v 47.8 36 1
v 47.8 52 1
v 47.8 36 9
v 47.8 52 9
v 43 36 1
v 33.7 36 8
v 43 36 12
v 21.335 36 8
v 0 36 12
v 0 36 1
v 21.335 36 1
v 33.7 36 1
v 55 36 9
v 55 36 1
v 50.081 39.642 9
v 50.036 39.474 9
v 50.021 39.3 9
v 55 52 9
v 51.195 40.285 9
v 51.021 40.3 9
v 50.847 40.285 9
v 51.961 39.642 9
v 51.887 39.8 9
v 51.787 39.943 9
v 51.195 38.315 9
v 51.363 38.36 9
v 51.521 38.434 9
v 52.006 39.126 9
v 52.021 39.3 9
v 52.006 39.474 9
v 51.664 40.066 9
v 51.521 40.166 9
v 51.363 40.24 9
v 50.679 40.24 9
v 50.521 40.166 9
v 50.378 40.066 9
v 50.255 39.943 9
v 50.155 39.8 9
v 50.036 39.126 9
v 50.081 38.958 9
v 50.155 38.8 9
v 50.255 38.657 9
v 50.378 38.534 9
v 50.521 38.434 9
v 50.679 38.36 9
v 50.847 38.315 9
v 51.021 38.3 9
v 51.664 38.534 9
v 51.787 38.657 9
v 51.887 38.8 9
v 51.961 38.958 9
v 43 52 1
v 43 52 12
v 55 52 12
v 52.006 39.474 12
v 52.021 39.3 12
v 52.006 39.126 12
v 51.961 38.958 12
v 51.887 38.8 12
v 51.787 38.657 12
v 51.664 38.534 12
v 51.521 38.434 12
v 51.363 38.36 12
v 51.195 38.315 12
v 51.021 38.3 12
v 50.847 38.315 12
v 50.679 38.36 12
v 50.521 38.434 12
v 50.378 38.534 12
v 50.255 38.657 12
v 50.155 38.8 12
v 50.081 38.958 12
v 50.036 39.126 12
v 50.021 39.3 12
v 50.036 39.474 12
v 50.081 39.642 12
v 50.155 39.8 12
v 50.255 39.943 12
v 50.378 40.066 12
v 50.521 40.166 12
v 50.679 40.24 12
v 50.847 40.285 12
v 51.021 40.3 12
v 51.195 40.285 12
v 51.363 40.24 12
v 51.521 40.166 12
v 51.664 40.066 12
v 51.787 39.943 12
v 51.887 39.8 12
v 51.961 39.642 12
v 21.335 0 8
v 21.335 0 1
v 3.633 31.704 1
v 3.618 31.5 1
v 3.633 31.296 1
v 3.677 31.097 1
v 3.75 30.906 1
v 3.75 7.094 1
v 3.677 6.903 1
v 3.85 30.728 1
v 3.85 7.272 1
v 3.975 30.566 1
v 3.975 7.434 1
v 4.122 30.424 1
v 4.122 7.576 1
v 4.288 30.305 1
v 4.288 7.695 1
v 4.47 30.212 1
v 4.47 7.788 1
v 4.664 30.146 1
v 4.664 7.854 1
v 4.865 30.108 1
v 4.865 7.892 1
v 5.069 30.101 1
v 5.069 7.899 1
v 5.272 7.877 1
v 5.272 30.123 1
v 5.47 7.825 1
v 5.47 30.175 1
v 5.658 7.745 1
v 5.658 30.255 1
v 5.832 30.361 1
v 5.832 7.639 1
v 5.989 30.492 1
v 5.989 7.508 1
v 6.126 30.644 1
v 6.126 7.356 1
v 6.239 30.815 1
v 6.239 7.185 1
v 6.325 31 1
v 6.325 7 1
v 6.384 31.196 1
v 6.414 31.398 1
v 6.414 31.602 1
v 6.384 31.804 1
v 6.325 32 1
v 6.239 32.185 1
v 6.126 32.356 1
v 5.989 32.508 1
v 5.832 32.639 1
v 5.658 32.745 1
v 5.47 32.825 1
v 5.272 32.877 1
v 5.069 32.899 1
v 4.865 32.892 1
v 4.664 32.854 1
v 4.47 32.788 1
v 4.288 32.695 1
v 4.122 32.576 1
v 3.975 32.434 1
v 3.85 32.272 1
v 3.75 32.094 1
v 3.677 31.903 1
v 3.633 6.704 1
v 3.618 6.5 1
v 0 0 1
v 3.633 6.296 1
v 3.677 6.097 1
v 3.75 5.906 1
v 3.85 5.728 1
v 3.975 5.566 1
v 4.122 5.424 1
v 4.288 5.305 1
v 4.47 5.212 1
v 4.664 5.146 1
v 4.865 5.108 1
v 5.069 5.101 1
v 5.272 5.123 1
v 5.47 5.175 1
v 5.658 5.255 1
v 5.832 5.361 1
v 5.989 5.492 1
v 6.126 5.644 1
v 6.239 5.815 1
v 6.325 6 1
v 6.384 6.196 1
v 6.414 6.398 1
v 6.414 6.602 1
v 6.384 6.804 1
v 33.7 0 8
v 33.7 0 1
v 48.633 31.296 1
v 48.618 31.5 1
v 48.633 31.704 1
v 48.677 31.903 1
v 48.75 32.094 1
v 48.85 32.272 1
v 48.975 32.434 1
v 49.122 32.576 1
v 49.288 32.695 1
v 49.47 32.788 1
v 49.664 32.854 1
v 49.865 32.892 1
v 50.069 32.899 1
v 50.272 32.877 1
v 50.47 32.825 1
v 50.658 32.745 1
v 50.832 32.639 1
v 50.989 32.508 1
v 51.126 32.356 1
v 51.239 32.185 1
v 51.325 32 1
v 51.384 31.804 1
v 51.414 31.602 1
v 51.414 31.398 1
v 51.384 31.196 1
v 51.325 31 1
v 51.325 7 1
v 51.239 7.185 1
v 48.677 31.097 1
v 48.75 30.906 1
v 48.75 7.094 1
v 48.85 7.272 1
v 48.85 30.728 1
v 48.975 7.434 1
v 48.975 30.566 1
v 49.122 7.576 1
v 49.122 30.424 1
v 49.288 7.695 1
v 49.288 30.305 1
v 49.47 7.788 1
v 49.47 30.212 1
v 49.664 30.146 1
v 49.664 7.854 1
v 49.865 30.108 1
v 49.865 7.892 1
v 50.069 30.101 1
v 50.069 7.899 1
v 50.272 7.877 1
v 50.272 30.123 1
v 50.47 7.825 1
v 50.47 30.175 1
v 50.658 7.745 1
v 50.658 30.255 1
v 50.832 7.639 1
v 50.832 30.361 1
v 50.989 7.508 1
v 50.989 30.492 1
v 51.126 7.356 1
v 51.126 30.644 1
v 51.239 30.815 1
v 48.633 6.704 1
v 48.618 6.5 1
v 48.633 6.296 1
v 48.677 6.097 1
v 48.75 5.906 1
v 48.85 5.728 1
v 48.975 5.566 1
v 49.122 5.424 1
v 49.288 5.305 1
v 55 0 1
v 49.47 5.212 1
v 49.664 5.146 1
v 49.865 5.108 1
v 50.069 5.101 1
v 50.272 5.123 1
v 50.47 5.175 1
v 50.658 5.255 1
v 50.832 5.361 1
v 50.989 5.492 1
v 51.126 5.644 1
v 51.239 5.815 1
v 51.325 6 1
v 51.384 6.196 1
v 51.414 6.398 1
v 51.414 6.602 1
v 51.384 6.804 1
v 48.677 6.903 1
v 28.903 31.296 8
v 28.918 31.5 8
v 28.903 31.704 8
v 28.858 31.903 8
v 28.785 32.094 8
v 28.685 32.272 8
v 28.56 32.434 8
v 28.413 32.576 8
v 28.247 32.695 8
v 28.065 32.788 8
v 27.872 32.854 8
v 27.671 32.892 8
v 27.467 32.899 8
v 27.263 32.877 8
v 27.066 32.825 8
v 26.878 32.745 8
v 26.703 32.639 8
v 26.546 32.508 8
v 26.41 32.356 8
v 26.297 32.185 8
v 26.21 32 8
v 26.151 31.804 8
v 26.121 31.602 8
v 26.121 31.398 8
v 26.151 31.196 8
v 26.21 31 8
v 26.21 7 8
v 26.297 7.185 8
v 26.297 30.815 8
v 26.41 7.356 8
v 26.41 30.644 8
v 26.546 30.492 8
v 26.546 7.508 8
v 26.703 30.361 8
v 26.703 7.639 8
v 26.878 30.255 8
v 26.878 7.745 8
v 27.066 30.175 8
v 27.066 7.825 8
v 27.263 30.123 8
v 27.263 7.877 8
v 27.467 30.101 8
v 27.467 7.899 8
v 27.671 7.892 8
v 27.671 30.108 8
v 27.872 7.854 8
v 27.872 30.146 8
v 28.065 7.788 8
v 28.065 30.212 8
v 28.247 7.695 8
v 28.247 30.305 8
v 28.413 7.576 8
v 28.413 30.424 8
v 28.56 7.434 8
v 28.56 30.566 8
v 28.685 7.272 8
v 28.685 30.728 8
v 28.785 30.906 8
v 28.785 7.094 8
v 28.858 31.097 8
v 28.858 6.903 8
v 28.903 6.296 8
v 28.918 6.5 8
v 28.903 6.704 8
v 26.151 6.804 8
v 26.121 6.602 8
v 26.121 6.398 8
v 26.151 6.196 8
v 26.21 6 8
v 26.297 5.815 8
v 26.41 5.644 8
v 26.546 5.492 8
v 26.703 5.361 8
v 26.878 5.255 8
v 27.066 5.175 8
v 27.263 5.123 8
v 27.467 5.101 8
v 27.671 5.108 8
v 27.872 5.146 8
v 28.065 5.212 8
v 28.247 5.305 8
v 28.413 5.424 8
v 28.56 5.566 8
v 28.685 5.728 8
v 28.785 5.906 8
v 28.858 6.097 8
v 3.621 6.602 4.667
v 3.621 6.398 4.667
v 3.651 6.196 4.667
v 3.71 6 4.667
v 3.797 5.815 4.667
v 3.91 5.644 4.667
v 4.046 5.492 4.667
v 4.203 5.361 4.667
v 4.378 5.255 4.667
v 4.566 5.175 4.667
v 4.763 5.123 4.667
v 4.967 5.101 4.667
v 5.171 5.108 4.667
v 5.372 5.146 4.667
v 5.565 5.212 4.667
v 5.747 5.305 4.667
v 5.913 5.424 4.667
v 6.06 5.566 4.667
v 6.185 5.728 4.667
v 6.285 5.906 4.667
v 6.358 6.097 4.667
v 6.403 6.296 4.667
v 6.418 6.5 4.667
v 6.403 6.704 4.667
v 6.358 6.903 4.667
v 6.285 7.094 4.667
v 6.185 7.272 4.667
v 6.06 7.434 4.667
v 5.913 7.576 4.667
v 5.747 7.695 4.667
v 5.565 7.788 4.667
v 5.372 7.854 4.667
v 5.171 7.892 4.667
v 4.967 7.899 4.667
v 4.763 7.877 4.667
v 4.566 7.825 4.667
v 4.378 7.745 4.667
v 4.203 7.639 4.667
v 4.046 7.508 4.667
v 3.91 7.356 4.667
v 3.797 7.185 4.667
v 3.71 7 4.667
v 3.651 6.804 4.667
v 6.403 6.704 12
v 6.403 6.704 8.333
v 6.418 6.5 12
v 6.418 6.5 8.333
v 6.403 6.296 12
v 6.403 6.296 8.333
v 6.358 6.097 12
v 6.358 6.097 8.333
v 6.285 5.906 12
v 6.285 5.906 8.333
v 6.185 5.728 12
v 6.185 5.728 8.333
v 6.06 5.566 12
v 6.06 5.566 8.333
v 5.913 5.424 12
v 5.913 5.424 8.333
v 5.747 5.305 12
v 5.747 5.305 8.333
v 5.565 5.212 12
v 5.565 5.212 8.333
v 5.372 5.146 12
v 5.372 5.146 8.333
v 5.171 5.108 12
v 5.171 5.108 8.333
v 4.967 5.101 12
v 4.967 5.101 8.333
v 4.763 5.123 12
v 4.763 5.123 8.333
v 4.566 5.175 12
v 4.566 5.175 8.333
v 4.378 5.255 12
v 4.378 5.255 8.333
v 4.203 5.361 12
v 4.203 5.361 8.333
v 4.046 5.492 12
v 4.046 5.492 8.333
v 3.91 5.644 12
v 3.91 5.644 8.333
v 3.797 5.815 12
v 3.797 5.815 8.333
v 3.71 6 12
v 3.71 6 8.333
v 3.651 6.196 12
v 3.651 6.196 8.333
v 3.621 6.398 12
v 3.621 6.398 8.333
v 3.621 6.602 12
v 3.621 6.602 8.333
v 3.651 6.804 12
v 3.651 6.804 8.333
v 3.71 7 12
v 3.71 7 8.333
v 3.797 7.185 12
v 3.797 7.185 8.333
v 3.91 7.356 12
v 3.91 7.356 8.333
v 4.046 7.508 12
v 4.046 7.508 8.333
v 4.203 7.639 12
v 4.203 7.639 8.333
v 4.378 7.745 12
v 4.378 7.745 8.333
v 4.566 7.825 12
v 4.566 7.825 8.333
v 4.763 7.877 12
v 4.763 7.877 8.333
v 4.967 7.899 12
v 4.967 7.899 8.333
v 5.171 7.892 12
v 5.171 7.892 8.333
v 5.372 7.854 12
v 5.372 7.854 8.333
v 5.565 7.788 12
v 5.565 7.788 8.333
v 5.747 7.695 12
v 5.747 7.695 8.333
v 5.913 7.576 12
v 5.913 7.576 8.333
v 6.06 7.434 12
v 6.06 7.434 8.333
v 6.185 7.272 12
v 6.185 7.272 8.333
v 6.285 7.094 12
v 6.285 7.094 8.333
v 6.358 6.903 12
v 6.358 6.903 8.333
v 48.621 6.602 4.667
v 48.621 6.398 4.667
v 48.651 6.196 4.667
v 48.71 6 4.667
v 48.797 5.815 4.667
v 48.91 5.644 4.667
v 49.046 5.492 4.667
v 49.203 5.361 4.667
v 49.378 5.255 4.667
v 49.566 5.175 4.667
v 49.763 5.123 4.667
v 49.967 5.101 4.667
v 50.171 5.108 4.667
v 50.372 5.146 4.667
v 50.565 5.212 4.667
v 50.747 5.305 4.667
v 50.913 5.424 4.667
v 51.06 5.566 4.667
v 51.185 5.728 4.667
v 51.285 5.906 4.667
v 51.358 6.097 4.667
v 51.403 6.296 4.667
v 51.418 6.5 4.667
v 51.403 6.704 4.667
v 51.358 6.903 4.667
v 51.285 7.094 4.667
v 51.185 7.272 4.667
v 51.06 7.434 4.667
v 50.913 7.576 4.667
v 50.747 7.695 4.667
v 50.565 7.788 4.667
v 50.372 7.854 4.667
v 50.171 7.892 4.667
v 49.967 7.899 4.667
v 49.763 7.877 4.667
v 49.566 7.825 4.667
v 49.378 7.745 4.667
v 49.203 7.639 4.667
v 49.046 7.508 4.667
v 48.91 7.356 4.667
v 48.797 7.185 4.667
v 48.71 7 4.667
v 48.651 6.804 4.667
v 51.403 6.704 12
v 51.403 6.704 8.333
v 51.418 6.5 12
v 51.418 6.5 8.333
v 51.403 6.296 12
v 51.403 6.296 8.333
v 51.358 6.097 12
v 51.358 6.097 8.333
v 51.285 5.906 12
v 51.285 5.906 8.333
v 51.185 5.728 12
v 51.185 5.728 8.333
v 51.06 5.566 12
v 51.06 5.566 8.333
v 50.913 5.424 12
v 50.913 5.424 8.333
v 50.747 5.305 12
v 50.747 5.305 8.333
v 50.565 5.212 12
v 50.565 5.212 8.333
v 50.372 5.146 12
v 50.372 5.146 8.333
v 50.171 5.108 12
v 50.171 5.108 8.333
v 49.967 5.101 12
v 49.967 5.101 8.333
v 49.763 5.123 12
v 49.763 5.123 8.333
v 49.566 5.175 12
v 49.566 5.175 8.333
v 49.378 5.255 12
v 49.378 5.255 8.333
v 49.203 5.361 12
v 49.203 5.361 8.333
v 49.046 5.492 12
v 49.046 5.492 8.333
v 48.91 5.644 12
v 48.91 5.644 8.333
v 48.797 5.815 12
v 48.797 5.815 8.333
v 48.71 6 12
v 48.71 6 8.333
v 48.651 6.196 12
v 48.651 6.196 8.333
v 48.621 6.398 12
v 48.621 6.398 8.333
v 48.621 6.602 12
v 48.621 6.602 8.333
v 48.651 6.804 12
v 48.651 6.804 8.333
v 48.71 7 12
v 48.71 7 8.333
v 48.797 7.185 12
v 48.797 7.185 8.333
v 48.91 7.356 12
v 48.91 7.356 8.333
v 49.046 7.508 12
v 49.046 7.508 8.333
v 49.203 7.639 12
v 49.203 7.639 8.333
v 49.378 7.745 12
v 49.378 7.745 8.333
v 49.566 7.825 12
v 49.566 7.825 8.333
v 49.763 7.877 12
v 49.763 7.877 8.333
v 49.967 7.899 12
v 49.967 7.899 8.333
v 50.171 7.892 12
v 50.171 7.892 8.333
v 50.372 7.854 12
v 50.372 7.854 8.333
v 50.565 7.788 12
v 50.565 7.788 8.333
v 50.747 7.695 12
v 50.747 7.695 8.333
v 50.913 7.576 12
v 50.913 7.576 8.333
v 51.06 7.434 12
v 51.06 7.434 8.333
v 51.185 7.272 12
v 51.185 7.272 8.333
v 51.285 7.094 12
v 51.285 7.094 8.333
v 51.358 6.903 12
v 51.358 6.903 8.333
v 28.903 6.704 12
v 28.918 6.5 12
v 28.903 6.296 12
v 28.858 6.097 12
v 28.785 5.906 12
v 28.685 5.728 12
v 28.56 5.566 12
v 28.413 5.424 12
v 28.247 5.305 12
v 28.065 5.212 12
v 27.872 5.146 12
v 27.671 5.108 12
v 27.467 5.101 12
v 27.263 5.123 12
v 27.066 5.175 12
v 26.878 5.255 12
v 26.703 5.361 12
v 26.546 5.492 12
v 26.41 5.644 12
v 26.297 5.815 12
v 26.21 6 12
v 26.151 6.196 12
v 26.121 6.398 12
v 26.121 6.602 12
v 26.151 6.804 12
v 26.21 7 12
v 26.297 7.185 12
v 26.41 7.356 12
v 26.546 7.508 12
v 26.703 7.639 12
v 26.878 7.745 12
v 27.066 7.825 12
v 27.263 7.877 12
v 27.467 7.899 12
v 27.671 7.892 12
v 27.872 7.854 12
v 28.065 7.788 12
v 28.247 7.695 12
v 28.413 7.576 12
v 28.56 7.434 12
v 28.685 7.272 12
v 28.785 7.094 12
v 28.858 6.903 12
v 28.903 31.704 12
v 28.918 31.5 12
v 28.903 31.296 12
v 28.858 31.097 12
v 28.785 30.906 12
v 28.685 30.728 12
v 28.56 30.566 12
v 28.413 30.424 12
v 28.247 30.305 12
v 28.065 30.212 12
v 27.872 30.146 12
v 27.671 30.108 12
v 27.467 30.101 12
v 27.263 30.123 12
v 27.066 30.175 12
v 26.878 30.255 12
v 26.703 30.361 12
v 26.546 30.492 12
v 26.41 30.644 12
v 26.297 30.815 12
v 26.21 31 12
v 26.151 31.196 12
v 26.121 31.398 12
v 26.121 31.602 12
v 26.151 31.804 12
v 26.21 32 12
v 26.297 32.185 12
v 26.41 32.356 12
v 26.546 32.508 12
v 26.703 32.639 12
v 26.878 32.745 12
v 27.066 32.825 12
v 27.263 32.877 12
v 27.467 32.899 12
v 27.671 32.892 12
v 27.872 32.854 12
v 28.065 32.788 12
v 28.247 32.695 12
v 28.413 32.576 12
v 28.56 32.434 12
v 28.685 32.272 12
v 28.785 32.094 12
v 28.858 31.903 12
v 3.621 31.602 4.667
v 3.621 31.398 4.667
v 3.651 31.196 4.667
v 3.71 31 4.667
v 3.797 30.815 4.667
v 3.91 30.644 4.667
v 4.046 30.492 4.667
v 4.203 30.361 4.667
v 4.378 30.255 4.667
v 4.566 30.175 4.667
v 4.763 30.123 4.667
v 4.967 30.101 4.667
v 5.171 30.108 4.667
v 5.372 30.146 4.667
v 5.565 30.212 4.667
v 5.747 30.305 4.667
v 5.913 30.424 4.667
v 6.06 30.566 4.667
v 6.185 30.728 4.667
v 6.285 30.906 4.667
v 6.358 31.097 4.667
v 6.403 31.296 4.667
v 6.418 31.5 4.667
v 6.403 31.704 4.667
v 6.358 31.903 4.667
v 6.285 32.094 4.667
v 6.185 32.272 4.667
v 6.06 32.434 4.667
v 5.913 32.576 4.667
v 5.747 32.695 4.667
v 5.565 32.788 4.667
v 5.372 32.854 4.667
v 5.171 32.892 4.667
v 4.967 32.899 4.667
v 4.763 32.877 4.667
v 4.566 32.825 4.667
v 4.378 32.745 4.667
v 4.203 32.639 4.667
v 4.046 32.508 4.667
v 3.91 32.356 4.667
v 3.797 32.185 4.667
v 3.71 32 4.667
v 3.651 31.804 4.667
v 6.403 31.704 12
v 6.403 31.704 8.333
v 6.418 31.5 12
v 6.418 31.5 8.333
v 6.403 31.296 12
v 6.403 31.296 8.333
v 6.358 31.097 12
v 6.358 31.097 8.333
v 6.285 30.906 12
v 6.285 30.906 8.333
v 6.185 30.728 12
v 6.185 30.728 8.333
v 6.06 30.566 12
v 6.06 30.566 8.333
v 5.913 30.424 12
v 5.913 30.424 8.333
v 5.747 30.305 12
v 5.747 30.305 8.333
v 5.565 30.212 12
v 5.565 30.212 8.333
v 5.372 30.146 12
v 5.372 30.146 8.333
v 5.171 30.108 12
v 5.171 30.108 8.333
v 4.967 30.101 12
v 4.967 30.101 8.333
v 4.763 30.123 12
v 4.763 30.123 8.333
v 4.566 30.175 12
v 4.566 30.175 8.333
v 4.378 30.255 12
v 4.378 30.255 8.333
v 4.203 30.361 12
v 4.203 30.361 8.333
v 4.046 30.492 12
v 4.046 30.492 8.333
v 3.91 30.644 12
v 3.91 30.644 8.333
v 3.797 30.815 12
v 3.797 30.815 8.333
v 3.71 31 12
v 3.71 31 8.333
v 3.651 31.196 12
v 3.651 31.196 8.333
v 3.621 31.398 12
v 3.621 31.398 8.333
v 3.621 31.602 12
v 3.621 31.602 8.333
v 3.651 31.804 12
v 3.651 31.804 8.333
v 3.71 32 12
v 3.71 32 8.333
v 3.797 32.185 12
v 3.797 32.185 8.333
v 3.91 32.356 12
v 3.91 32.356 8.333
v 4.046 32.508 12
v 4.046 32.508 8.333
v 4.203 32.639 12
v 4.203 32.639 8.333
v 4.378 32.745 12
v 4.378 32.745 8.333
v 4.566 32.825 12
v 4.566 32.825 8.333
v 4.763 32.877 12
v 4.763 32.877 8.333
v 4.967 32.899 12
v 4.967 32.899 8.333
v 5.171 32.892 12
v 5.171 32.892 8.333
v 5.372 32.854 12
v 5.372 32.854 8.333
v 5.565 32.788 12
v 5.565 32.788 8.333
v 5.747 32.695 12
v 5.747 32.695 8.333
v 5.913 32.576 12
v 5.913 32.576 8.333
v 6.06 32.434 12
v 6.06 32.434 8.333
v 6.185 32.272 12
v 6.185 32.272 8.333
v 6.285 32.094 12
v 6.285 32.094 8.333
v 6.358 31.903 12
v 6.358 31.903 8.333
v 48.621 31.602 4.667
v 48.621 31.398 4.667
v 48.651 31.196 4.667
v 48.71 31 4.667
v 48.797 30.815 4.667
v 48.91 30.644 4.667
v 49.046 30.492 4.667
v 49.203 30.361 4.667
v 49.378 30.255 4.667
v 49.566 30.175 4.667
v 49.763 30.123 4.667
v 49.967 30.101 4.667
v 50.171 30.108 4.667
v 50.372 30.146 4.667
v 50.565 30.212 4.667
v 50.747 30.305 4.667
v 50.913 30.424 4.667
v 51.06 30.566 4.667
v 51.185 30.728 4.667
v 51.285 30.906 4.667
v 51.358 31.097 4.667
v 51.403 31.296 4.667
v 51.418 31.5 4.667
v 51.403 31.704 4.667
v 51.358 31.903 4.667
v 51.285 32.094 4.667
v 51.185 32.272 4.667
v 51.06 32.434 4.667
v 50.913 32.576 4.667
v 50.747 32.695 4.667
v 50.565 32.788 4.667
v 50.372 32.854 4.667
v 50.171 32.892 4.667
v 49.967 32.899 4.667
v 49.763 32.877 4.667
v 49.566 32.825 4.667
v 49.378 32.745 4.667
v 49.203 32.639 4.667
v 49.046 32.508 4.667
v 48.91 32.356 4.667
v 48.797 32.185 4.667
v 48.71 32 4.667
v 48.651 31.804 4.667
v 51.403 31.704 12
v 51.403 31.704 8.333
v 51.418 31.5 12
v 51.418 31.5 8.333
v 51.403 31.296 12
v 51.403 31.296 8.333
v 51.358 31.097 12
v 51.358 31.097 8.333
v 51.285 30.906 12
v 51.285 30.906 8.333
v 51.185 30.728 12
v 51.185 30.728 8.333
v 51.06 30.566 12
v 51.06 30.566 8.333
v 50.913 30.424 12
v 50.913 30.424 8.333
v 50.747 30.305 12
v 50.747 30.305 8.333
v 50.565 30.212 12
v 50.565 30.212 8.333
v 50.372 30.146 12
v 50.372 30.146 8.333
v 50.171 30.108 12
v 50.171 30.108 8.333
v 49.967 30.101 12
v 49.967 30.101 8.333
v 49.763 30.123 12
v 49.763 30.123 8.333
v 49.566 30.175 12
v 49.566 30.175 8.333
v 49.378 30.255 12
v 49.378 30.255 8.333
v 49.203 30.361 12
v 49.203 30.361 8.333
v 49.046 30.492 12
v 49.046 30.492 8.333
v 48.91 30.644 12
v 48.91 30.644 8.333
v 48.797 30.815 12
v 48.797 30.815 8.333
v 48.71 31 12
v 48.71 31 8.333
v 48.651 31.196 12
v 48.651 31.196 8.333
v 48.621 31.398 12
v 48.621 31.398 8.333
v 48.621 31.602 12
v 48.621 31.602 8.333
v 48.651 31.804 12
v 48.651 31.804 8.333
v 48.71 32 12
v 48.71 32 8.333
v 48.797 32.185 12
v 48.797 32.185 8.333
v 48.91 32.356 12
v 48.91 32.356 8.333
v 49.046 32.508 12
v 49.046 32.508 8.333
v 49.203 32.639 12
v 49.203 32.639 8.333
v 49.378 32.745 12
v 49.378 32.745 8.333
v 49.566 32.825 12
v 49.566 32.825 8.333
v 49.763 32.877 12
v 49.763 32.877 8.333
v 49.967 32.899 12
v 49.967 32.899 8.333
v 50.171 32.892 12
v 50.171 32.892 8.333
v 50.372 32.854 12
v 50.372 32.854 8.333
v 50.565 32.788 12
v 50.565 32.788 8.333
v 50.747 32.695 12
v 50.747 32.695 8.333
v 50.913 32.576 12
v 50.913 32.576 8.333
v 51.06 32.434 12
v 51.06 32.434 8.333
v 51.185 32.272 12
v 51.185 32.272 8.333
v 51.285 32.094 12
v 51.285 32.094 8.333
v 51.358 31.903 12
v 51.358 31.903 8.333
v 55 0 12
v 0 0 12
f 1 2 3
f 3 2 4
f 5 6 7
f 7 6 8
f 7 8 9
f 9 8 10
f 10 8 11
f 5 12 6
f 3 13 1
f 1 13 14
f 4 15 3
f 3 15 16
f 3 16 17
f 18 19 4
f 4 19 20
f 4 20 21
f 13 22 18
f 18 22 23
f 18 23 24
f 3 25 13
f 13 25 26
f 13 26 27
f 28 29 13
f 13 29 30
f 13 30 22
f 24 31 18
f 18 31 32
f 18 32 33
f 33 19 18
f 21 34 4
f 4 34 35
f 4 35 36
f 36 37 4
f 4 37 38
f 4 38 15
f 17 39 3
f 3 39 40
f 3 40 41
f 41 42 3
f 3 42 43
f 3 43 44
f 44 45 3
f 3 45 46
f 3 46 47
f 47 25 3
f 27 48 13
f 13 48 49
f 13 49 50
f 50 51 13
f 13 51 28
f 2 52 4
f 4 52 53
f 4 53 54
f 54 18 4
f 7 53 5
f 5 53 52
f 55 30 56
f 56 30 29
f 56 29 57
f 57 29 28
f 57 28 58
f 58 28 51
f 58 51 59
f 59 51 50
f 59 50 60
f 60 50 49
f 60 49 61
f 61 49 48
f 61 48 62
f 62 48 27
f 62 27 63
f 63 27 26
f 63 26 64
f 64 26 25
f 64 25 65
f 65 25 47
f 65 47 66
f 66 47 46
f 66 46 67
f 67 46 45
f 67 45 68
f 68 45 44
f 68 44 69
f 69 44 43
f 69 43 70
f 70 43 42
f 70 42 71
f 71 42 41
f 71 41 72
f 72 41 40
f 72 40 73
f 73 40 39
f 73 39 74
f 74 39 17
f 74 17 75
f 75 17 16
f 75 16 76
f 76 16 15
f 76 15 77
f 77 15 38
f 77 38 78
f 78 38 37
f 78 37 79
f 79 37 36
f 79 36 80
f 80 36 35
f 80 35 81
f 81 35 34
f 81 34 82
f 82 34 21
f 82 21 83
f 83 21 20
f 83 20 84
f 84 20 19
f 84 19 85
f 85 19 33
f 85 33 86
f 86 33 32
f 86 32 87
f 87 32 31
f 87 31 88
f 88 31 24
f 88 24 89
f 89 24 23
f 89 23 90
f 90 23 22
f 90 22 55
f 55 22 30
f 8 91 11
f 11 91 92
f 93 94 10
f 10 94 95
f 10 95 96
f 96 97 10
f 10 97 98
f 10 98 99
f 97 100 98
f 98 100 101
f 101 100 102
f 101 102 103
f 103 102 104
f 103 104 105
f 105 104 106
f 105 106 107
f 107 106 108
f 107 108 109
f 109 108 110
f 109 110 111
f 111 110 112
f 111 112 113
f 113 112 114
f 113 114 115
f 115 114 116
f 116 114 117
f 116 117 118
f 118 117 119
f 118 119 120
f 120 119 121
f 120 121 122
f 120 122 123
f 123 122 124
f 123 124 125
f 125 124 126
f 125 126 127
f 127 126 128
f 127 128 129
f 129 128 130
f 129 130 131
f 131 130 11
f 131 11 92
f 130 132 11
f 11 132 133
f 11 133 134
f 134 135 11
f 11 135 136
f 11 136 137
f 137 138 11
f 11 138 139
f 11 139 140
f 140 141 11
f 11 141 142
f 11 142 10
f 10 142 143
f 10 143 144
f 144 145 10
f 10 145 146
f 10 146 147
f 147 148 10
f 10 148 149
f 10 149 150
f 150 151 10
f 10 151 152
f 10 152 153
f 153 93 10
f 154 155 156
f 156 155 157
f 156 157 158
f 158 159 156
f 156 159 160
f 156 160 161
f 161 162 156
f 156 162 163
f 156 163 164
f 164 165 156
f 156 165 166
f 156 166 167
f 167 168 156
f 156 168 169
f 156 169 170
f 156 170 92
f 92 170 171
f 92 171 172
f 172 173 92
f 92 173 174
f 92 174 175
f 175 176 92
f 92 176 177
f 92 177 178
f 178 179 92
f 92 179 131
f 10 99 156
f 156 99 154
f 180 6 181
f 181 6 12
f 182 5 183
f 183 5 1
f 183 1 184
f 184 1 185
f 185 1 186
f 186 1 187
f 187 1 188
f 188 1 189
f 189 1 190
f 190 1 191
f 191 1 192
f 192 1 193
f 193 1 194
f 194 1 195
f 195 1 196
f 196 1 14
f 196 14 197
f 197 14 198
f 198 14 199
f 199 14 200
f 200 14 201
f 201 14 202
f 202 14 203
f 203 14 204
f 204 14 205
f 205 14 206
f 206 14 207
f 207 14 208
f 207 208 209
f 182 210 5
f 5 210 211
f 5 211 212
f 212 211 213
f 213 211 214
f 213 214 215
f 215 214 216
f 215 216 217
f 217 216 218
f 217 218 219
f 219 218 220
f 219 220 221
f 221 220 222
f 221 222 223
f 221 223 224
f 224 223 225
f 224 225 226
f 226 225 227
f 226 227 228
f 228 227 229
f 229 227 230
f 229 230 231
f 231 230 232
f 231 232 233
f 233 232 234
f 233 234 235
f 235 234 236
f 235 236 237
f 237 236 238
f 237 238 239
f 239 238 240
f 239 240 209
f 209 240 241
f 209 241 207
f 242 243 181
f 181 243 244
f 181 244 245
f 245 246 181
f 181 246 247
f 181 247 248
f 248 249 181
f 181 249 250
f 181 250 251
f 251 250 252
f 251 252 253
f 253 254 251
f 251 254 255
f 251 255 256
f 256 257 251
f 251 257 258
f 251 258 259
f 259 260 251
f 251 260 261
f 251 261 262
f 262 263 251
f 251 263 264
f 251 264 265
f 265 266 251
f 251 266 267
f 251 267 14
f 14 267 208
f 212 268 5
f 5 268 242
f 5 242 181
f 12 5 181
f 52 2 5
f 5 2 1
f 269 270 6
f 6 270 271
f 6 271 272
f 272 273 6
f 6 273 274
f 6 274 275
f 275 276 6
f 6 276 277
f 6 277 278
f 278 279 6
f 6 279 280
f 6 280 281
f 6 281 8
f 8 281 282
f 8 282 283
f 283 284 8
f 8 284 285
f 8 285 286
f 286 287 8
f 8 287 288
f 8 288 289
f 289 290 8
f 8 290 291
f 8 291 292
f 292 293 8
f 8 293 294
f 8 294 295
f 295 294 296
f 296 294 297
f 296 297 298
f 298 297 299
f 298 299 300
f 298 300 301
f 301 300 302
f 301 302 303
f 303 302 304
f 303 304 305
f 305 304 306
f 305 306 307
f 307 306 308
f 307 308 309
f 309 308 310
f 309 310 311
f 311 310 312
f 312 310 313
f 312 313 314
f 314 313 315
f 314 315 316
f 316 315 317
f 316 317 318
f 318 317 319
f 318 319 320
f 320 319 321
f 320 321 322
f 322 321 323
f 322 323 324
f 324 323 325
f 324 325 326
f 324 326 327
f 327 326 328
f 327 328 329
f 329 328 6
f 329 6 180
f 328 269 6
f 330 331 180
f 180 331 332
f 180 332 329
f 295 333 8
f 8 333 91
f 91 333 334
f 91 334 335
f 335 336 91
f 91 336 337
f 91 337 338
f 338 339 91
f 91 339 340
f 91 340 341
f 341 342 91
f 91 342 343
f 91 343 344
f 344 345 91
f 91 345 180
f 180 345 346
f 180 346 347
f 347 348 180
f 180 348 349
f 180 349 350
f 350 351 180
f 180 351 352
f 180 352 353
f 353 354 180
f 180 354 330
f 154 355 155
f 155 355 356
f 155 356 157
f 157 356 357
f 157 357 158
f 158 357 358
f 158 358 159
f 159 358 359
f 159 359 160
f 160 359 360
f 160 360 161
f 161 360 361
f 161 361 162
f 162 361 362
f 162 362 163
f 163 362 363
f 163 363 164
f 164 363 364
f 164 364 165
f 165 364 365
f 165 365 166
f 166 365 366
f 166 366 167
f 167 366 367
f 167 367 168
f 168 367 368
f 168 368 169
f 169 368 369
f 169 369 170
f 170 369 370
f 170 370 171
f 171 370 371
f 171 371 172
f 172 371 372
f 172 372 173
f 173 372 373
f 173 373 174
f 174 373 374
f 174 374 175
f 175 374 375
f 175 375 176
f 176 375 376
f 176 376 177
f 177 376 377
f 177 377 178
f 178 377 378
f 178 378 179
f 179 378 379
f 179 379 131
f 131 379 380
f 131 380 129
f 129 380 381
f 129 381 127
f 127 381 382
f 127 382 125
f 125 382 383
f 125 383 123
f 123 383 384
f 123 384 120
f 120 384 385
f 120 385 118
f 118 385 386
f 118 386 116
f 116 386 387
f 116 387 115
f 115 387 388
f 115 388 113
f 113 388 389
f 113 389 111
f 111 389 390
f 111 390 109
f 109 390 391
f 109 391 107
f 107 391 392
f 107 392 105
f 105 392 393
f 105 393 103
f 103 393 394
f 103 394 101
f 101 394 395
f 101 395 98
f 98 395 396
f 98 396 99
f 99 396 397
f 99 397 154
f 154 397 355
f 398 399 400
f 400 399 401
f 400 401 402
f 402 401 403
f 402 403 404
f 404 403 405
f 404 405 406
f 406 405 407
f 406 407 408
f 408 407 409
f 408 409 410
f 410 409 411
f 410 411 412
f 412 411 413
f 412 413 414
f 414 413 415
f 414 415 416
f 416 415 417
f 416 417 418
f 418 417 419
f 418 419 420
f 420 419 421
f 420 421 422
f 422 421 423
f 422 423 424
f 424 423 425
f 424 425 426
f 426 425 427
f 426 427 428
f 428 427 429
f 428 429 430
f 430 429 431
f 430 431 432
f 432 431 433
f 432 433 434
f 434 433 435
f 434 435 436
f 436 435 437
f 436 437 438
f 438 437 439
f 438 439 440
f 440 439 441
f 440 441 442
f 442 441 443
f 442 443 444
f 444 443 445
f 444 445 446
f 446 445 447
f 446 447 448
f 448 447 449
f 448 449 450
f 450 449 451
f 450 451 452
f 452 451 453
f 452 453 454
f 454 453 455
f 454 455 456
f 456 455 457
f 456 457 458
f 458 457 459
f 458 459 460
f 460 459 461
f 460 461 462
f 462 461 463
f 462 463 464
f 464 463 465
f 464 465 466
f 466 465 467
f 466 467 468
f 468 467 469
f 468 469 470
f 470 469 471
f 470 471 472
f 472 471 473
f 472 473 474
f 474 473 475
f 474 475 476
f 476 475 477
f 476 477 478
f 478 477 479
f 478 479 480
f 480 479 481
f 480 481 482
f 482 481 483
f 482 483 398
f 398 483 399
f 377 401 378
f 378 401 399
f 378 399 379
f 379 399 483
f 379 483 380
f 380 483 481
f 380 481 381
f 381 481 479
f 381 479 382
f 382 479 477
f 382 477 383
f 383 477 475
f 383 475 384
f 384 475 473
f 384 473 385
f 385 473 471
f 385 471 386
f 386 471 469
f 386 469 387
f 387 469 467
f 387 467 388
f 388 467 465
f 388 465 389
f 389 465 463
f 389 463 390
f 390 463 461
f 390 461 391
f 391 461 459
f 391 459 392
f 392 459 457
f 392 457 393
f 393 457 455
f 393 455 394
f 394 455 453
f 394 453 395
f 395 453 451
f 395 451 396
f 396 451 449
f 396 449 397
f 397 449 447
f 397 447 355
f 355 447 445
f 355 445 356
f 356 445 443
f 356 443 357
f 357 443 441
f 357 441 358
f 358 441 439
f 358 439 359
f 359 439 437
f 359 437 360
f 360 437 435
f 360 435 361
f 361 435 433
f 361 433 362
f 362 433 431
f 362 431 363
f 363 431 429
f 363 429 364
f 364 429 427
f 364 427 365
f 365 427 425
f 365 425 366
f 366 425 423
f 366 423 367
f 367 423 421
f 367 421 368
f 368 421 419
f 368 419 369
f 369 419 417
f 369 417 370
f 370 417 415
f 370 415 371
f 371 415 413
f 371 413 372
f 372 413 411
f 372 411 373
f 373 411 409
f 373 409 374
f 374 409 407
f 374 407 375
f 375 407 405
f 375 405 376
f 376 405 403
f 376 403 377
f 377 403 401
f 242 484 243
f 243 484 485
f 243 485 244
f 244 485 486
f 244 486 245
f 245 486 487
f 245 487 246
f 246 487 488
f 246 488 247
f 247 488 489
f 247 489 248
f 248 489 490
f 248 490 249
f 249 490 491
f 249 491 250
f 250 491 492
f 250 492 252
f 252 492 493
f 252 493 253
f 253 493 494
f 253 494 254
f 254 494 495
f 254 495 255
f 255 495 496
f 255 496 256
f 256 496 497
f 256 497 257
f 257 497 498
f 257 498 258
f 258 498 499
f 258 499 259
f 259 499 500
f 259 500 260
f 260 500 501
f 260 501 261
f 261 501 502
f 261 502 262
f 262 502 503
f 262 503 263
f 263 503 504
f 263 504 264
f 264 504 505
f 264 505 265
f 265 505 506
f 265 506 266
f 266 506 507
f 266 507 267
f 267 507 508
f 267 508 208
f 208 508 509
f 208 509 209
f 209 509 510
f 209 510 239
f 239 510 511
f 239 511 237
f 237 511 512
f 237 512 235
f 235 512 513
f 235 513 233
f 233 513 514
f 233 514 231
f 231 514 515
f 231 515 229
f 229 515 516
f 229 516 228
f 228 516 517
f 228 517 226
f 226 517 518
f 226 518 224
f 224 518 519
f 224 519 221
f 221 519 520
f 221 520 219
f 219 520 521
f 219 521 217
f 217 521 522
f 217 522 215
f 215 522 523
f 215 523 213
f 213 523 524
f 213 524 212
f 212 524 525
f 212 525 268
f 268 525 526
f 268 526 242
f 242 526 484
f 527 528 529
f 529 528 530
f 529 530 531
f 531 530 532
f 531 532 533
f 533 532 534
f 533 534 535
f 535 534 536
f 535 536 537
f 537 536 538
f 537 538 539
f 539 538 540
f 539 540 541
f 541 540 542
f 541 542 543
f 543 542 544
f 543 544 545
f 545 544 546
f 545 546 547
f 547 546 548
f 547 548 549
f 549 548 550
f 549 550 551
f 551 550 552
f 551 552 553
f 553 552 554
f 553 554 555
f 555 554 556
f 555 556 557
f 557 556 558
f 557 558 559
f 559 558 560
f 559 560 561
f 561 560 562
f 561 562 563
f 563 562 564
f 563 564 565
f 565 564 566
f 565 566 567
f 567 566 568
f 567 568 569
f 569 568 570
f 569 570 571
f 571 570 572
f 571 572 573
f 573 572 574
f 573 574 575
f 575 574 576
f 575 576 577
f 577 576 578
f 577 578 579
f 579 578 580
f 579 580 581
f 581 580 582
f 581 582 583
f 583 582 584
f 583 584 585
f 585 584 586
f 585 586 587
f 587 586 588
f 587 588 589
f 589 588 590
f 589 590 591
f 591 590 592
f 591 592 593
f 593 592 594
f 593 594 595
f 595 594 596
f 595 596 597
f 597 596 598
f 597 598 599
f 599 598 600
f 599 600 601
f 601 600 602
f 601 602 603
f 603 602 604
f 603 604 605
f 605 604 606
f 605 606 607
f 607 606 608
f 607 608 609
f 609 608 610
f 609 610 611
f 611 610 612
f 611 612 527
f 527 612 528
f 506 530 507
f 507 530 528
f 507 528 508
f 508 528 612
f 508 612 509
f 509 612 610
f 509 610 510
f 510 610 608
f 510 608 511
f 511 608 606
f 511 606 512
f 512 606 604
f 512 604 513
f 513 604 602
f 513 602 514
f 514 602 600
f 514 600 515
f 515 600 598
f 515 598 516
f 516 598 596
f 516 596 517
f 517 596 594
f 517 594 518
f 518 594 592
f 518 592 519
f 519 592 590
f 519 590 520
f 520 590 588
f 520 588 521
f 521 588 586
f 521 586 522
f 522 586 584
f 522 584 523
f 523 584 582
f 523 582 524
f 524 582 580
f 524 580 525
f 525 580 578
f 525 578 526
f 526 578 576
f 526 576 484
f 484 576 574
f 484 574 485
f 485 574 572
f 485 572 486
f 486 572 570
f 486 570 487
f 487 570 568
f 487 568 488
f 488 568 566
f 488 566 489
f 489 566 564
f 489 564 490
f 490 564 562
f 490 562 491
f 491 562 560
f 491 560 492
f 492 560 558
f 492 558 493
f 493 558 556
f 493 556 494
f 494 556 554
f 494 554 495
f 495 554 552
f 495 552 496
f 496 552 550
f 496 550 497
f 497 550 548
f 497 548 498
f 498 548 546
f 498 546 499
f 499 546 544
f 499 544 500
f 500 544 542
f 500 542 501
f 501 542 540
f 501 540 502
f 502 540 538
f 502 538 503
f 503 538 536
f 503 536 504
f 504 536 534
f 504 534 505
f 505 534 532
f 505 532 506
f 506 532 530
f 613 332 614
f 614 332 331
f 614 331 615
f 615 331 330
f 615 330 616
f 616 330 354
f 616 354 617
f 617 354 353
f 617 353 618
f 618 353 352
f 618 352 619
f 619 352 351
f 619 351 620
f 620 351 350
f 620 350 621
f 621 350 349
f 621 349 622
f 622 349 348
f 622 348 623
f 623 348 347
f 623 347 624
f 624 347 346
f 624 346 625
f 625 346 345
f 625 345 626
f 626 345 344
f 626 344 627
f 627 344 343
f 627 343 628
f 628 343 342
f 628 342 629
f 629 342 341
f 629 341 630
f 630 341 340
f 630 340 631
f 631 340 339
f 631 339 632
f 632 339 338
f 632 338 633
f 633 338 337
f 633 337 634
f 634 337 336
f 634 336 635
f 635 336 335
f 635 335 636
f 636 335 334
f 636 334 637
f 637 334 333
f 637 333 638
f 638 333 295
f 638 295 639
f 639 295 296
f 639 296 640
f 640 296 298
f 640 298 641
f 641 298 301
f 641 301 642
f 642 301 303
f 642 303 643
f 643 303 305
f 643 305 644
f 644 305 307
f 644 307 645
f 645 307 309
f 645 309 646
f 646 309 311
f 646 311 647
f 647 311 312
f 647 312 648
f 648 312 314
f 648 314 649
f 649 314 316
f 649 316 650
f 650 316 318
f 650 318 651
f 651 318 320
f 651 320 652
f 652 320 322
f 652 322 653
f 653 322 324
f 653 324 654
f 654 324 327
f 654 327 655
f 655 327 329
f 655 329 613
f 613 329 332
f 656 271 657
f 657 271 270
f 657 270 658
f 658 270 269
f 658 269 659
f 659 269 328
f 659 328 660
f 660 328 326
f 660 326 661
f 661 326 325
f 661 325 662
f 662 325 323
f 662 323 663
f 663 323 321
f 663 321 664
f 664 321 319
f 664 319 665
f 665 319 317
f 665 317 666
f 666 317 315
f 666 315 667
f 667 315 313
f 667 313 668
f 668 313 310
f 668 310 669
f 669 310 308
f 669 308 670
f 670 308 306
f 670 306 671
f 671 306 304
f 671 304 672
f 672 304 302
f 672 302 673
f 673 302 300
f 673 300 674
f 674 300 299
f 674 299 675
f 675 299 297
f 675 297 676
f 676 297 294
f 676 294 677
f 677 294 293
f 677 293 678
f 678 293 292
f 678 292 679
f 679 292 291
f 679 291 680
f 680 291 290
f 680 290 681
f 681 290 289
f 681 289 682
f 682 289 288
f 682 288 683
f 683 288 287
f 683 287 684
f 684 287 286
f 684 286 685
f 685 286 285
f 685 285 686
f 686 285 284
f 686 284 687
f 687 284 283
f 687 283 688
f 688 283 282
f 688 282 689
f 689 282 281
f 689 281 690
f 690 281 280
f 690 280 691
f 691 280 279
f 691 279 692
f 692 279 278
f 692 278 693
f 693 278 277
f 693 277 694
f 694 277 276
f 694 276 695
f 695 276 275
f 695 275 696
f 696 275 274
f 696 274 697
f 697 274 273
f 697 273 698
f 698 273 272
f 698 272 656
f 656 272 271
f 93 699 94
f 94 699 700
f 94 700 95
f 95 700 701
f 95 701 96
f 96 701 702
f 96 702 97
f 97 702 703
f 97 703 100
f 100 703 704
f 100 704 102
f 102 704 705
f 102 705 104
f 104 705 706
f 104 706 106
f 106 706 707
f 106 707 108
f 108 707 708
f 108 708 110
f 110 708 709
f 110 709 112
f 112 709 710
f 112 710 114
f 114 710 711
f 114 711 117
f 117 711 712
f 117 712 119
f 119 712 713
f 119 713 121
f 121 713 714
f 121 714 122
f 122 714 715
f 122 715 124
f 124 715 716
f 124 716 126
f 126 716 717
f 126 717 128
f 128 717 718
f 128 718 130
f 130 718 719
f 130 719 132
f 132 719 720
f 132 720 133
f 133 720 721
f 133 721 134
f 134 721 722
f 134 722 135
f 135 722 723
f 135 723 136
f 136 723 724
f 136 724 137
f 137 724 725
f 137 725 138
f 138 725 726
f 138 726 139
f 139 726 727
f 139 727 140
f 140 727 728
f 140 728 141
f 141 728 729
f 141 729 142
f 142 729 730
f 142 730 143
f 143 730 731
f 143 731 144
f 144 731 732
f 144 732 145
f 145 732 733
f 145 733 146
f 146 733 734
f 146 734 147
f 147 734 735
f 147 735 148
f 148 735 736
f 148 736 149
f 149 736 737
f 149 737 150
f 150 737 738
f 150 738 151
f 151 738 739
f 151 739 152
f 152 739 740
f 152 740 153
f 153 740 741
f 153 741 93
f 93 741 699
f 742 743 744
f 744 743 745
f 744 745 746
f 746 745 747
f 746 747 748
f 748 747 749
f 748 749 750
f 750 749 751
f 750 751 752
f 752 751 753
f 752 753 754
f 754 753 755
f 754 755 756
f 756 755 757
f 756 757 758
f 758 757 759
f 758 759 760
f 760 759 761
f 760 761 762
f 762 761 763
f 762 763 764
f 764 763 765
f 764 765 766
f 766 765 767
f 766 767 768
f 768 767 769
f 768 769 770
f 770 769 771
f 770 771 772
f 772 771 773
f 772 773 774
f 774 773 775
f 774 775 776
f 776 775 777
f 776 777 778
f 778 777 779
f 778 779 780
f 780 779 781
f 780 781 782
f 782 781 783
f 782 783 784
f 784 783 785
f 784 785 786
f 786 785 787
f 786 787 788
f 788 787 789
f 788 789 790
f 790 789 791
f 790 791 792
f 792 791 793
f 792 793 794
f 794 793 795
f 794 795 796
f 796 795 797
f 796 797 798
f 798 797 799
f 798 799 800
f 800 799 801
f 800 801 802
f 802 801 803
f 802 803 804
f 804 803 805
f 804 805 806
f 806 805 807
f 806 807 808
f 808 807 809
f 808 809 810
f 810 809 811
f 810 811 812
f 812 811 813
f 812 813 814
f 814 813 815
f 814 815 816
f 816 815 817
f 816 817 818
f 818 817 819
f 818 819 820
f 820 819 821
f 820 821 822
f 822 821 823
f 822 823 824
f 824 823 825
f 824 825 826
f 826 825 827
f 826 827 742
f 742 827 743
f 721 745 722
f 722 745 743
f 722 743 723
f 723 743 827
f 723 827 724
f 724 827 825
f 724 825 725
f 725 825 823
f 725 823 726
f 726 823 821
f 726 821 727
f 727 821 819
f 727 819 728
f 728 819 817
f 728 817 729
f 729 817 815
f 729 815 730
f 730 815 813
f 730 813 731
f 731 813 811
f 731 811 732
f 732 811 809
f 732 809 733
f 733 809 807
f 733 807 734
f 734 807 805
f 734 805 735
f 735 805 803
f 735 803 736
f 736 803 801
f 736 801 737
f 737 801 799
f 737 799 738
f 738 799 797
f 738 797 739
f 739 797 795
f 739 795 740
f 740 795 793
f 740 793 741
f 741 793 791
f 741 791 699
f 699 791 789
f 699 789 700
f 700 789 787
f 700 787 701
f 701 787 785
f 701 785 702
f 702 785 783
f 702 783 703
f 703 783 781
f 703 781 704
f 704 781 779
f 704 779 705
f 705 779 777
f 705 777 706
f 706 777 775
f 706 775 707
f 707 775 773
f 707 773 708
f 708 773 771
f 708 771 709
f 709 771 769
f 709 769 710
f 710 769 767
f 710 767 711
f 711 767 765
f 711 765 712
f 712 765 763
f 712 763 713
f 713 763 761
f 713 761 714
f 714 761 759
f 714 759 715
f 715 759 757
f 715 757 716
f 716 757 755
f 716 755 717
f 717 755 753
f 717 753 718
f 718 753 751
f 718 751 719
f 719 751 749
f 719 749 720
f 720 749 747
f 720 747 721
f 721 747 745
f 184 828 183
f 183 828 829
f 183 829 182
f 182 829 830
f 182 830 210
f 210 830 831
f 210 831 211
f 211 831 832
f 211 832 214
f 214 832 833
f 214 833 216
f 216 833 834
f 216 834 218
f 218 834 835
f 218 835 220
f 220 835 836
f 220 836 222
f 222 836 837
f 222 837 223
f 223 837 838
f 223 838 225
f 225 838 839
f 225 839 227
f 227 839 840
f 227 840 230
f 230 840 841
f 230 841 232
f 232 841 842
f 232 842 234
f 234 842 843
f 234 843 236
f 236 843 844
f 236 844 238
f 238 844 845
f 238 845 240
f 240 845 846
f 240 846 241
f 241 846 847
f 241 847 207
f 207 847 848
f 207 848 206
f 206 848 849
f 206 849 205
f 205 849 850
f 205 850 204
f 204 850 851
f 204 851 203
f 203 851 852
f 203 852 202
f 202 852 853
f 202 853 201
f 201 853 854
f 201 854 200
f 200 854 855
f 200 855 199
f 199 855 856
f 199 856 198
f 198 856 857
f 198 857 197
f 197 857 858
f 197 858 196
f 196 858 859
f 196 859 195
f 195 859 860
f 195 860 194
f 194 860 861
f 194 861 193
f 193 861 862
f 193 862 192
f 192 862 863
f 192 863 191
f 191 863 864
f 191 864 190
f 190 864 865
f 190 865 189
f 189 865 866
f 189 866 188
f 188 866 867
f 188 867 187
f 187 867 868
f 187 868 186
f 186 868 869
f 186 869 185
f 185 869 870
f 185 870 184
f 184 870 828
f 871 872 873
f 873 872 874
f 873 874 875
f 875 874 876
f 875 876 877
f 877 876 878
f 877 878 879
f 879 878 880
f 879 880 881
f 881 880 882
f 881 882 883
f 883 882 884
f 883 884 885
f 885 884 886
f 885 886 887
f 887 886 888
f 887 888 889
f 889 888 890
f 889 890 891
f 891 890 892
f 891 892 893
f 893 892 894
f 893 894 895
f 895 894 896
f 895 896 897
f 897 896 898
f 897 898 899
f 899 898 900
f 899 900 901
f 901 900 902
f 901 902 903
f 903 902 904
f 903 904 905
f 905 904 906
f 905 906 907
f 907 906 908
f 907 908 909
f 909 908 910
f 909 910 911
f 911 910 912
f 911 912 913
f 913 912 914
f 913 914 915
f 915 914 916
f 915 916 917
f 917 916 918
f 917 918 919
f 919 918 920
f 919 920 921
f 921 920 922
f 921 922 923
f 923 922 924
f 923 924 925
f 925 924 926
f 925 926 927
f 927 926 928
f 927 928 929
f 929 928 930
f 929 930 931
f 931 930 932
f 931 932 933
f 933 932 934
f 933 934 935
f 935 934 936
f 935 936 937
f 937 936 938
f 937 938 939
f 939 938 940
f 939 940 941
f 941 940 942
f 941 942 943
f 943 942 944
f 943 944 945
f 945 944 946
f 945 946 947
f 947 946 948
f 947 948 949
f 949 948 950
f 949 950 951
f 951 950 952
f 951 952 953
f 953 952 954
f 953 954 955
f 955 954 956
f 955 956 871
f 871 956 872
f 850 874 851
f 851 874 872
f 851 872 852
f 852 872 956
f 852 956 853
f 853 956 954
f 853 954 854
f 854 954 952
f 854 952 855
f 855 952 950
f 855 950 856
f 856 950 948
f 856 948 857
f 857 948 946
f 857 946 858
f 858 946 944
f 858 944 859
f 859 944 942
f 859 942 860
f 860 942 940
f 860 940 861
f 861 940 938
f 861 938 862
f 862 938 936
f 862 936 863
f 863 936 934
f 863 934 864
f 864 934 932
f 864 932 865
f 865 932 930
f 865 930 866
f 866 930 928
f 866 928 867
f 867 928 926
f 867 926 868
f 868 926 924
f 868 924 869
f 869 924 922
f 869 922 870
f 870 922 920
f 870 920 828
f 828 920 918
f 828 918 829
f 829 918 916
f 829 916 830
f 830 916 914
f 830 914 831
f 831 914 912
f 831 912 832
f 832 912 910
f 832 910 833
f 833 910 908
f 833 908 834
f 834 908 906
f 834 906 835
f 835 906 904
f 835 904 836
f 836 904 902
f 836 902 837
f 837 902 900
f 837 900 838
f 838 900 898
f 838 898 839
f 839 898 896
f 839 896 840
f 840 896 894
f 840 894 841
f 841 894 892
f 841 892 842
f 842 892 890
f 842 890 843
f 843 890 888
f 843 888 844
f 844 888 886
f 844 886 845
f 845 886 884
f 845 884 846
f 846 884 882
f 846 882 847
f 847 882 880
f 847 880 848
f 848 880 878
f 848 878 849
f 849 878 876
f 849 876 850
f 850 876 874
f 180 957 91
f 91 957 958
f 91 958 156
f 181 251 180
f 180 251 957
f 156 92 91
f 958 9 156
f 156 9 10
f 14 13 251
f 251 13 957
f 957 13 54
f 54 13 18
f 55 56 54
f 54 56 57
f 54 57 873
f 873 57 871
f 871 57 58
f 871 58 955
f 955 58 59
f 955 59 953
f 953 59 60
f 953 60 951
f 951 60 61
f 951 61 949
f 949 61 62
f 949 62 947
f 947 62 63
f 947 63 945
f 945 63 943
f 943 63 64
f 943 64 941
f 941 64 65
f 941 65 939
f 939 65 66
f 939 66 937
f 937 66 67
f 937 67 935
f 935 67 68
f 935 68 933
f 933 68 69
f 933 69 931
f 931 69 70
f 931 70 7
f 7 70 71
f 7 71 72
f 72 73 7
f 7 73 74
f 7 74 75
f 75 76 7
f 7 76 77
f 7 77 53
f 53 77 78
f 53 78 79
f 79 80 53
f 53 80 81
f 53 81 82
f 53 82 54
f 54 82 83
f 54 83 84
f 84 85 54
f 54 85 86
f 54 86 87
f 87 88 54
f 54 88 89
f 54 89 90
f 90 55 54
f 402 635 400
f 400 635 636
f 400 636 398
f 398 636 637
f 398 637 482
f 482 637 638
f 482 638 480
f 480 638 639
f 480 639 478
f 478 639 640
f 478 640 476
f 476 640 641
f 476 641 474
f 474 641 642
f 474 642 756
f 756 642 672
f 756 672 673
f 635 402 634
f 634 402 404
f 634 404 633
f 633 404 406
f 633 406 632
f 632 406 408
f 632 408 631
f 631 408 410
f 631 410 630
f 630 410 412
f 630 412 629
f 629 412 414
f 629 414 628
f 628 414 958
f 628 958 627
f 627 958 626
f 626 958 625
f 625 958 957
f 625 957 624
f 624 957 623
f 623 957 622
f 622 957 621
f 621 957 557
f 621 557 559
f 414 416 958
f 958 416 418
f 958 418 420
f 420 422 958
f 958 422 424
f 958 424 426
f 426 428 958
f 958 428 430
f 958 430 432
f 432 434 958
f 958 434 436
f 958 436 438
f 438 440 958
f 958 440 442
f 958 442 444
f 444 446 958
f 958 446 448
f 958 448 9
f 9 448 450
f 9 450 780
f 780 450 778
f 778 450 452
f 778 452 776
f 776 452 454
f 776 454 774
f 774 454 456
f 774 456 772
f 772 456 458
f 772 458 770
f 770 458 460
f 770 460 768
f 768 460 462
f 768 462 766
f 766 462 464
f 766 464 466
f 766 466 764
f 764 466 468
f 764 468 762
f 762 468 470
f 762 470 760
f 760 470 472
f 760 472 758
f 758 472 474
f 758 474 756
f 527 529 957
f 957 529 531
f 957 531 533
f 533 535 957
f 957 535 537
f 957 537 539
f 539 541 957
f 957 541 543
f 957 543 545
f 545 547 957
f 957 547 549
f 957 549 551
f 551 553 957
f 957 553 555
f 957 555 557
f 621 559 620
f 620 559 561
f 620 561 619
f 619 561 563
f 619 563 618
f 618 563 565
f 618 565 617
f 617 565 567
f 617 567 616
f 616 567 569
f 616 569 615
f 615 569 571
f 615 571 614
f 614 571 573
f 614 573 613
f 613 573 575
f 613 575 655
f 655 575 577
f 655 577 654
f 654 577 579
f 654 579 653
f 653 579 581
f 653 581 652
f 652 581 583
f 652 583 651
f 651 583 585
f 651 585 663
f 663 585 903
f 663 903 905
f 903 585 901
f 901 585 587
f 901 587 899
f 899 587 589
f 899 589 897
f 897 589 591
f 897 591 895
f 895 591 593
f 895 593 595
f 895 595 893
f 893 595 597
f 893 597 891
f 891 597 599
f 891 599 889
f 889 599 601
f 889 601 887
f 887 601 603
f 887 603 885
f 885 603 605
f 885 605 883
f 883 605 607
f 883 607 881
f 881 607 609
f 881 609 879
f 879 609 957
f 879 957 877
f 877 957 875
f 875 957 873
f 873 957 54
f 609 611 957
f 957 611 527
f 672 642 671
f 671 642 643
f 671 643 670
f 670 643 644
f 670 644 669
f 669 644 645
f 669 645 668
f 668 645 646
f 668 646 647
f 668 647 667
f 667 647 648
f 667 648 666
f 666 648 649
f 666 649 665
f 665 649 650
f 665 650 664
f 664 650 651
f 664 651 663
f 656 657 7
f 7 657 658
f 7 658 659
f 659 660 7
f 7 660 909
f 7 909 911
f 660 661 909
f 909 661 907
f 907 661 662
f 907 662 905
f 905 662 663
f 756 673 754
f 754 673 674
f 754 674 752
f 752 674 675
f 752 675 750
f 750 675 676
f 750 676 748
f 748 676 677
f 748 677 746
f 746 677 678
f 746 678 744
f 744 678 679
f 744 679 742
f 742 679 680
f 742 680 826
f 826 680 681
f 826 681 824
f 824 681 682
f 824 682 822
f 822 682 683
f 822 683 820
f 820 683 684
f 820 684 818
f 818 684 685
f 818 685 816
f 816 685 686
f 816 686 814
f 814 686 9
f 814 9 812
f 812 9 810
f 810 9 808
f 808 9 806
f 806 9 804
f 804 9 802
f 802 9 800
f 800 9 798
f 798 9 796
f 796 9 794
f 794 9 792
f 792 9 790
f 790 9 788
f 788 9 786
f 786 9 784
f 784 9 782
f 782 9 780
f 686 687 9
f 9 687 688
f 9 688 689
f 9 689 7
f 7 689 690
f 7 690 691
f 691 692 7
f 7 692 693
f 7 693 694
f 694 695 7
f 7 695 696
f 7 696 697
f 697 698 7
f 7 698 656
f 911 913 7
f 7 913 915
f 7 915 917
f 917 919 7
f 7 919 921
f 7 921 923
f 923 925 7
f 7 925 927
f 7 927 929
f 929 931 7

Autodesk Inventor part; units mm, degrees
ref_plane "YZ Plane" through (0, 0, 0) normal (1, 0, 0) x (0, 1, 0)
ref_plane "XZ Plane" through (0, 0, 0) normal (0, 1, 0) x (-1, 0, 0)
ref_plane "Work Plane1" through (22.0339, 196.5, 8) normal (0, 0, 1) x (1, 0, 0)
sketch "Sketch1" plane through (22.0339, 196.5, 8) normal (0, 0, 1) x (1, 0, 0)
  circle A0 centre (5.4838, -190) radius 1.4 projected
  circle A1 centre (27.9838, -190) radius 1.4 projected
  circle A2 centre (-17.0162, -190) radius 1.4 projected
  line L0 (-22.0339, -196.5) -> (32.9661, -196.5) projected
  line L1 (32.9661, -196.5) -> (32.9661, -186.5) projected
  line L2 (-22.0339, -186.5) -> (32.9661, -186.5) projected
  line L3 (-22.0339, -196.5) -> (-22.0339, -186.5) projected
  circle A3 centre (27.9838, -165) radius 1.4 projected
  circle A4 centre (-17.0162, -165) radius 1.4 projected
  circle A5 centre (5.4838, -165) radius 1.4 projected
  line L4 (32.9661, -160.5) -> (32.9661, -169.5) projected
  line L5 (-22.0339, -160.5) -> (32.9661, -160.5) projected
  line L6 (-22.0339, -160.5) -> (-22.0339, -169.5) projected
  line L7 (32.9661, -169.5) -> (-22.0339, -169.5) projected
  line L8 (32.9661, -196.5) -> (-22.0339, -196.5)
  line L9 (-22.0339, -196.5) -> (-22.0339, -160.5)
  line L10 (-22.0339, -160.5) -> (32.9661, -160.5)
  line L11 (32.9661, -160.5) -> (32.9661, -196.5)
extrude "Extrusion1" add sketch "Sketch1" along normal blind 4
sketch "Sketch2" plane through (22.0339, 196.5, 8) normal (0, 0, -1) x (-1, 0, 0)
  circle A0 centre (17.0162, -190) radius 1.4 projected
  circle A1 centre (-27.9838, -190) radius 1.4 projected
  circle A2 centre (-5.4838, -190) radius 1.4 projected
  circle A3 centre (-5.4838, -165) radius 1.4 projected
  circle A4 centre (17.0162, -165) radius 1.4 projected
  circle A5 centre (-27.9838, -165) radius 1.4 projected
  line L0 (-32.9661, -196.5) -> (-32.9661, -160.5) projected
  line L1 (22.0339, -196.5) -> (-32.9661, -196.5) projected
  line L2 (22.0339, -160.5) -> (22.0339, -196.5) projected
  line L3 (-32.9661, -160.5) -> (22.0339, -160.5) projected
  line L4 (22.0339, -196.5) -> (-32.9661, -196.5) projected
  line L5 (22.0339, -160.5) -> (0.6985, -160.5)
  line L6 (0.6985, -160.5) -> (0.6985, -196.5)
  line L7 (0.6985, -196.5) -> (22.0339, -196.5)
  line L8 (22.0339, -196.5) -> (22.0339, -160.5)
  line L9 (-32.9661, -196.5) -> (-32.9661, -160.5) projected
  line L10 (-32.9661, -160.5) -> (-11.6661, -160.5)
  line L11 (-11.6661, -160.5) -> (-11.6661, -196.5)
  line L12 (-11.6661, -196.5) -> (-32.9661, -196.5)
  line L13 (-32.9661, -196.5) -> (-32.9661, -160.5)
  line L14 (-11.4661, 0) -> (-11.4661, -200) projected
  line L15 (0.4985, 0) -> (0.4985, -200) projected
  dimension "d6" = 0.2
  dimension "d7" = 0.2
extrude "Extrusion2" add sketch "Sketch2" along normal blind 7 contours L0 L3 L11 L1 | L6 L3 L2 L1
sketch "Sketch3" plane through (22.0339, 196.5, 12) normal (0, 0, 1) x (1, 0, 0)
  circle A0 centre (-17.0162, -190) radius 1.4 projected
  circle A1 centre (27.9838, -190) radius 1.4 projected
  circle A2 centre (5.4838, -190) radius 1.4 projected
  circle A3 centre (5.4838, -165) radius 1.4 projected
  circle A4 centre (-17.0162, -165) radius 1.4 projected
  circle A5 centre (27.9838, -165) radius 1.4 projected
  line L0 (32.9661, -196.5) -> (32.9661, -160.5) projected
  line L1 (32.9661, -160.5) -> (-22.0339, -160.5) projected
  line L2 (-22.0339, -160.5) -> (-22.0339, -196.5) projected
  line L3 (-22.0339, -196.5) -> (32.9661, -196.5) projected
  circle A6 centre (28.987, -157.2) radius 1 projected
  circle A7 centre (28.987, -157.2) radius 1 projected
  circle A8 centre (50.837, -147.5) radius 1 projected
  line L4 (53.837, -158.2) -> (53.837, -154.2581) projected
  line L5 (53.837, -154.2581) -> (61.5817, -154.2581) projected
  line L6 (61.5817, -154.2581) -> (61.5817, -153.1829) projected
  line L7 (61.5817, -153.1829) -> (53.837, -153.1829) projected
  line L8 (53.837, -153.1829) -> (53.837, -149.448) projected
  line L9 (53.837, -149.448) -> (61.5817, -149.448) projected
  line L10 (61.5817, -149.448) -> (61.5817, -148.769) projected
  line L11 (61.5817, -148.769) -> (53.837, -148.769) projected
  line L12 (53.837, -148.769) -> (53.837, -146.5) projected
  arc A9 (53.837, -146.5) -> (51.837, -144.5) centre (51.837, -146.5) ccw projected
  line L13 (51.837, -144.5) -> (46.3523, -144.5) projected
  line L14 (46.3523, -144.5) -> (18.7709, -139.6366) projected
  line L15 (18.7709, -139.6366) -> (16.0392, -139.155) projected
  line L16 (16.0392, -139.155) -> (15.987, -139.4512) projected
  line L17 (15.987, -139.4512) -> (44.6201, -144.5) projected
  line L18 (44.6201, -144.5) -> (27.987, -144.5) projected
  arc A10 (27.987, -144.5) -> (25.987, -146.5) centre (27.987, -146.5) ccw projected
  line L19 (25.987, -146.5) -> (25.987, -158.2) projected
  arc A11 (25.987, -158.2) -> (27.987, -160.2) centre (27.987, -158.2) ccw projected
  line L20 (27.987, -160.2) -> (33.9661, -160.2) projected
  line L21 (33.9661, -164.2178) -> (33.9661, -160.2) projected
  line L22 (42.5677, -164.2178) -> (33.9661, -164.2178) projected
  line L23 (42.5677, -164.2178) -> (42.5677, -163.1992) projected
  line L24 (42.5677, -163.1992) -> (35.1545, -163.1992) projected
  line L25 (35.1545, -160.2) -> (35.1545, -163.1992) projected
  line L26 (35.1545, -160.2) -> (51.837, -160.2) projected
  arc A12 (51.837, -160.2) -> (53.837, -158.2) centre (51.837, -158.2) ccw projected
  line L27 (32.9661, -160.5) -> (-22.0339, -160.5) projected
  line L28 (20.9661, -160.5) -> (32.9661, -160.5)
  line L29 (32.9661, -160.5) -> (32.9661, -144.5)
  line L30 (32.9661, -144.5) -> (20.9661, -144.5)
  line L31 (20.9661, -144.5) -> (20.9661, -160.5)
  point P0 (-22.0339, -196.5)
  dimension "d8" = 12
ref_plane "Work Plane2" through (38.0184, 32.2776, 9) normal (0, 0, 1) x (1, 0, 0)
extrude "Extrusion3" add sketch "Sketch3" against normal up to surface (3 mm away) contours L1 L31 L30 A10 L19 A11 L20 L29 | L20 A11 L19 A10 L18 L29
sketch "Sketch4" plane through (55, 52, 9) normal (0, 0, -1) x (-1, 0, 0)
  circle A0 centre (3.9791, -12.7) radius 1 projected
  circle A1 centre (-17.8709, -3) radius 1 projected
  line L0 (-20.8709, -13.7) -> (-20.8709, -9.7581) projected
  line L1 (-20.8709, -9.7581) -> (-28.6156, -9.7581) projected
  line L2 (-28.6156, -9.7581) -> (-28.6156, -8.6829) projected
  line L3 (-28.6156, -8.6829) -> (-20.8709, -8.6829) projected
  line L4 (-20.8709, -8.6829) -> (-20.8709, -4.948) projected
  line L5 (-20.8709, -4.948) -> (-28.6156, -4.948) projected
  line L6 (-28.6156, -4.948) -> (-28.6156, -4.269) projected
  line L7 (-28.6156, -4.269) -> (-20.8709, -4.269) projected
  line L8 (-20.8709, -4.269) -> (-20.8709, -2) projected
  arc A2 (-18.8709, 0) -> (-20.8709, -2) centre (-18.8709, -2) ccw projected
  line L9 (-18.8709, 0) -> (-13.3862, 0) projected
  line L10 (-13.3862, 0) -> (14.1952, 4.8634) projected
  line L11 (14.1952, 4.8634) -> (16.9269, 5.345) projected
  line L12 (16.9269, 5.345) -> (16.9791, 5.0488) projected
  line L13 (16.9791, 5.0488) -> (-11.654, 0) projected
  line L14 (-11.654, 0) -> (4.9791, 0) projected
  arc A3 (6.9791, -2) -> (4.9791, 0) centre (4.9791, -2) ccw projected
  line L15 (6.9791, -2) -> (6.9791, -13.7) projected
  arc A4 (4.9791, -15.7) -> (6.9791, -13.7) centre (4.9791, -13.7) ccw projected
  line L16 (4.9791, -15.7) -> (-1, -15.7) projected
  line L17 (-1, -19.7178) -> (-1, -15.7) projected
  line L18 (-9.6016, -19.7178) -> (-1, -19.7178) projected
  line L19 (-9.6016, -19.7178) -> (-9.6016, -18.6992) projected
  line L20 (-9.6016, -18.6992) -> (-2.1884, -18.6992) projected
  line L21 (-2.1884, -15.7) -> (-2.1884, -18.6992) projected
  line L22 (-2.1884, -15.7) -> (-18.8709, -15.7) projected
  arc A5 (-20.8709, -13.7) -> (-18.8709, -15.7) centre (-18.8709, -13.7) ccw projected
  line L23 (12, -16) -> (55, -16) projected
  circle A6 centre (3.9791, -12.7) radius 1 projected
  circle A7 centre (49.9823, -45.5) radius 1.4 projected
  circle A8 centre (4.9823, -45.5) radius 1.4 projected
  circle A9 centre (27.4823, -45.5) radius 1.4 projected
  circle A10 centre (27.4823, -20.5) radius 1.4 projected
  circle A11 centre (49.9823, -20.5) radius 1.4 projected
  circle A12 centre (4.9823, -20.5) radius 1.4 projected
  line L24 (0, -52) -> (0, 0) projected
  line L25 (0, 0) -> (12, 0) projected
  line L26 (12, 0) -> (12, -16) projected
  line L27 (12, -16) -> (55, -16) projected
  line L28 (55, -16) -> (55, -52) projected
  line L29 (55, -52) -> (0, -52) projected
  line L30 (12, -16) -> (0, -16) projected
  line L31 (12, 0) -> (0, 0) projected
  line L32 (12, -16) -> (7.2, -16)
  line L33 (7.2, -16) -> (7.2, 0)
  line L34 (7.2, 0) -> (12, 0)
  line L35 (12, 0) -> (12, -16)
  point P0 (55, -52)
  dimension "d11" = 4.8
extrude "Extrusion4" add sketch "Sketch4" along normal up to surface (8 mm away) contours L33 L25 L26 L30
properties part number "04_Mount_Rail_Fastener"
